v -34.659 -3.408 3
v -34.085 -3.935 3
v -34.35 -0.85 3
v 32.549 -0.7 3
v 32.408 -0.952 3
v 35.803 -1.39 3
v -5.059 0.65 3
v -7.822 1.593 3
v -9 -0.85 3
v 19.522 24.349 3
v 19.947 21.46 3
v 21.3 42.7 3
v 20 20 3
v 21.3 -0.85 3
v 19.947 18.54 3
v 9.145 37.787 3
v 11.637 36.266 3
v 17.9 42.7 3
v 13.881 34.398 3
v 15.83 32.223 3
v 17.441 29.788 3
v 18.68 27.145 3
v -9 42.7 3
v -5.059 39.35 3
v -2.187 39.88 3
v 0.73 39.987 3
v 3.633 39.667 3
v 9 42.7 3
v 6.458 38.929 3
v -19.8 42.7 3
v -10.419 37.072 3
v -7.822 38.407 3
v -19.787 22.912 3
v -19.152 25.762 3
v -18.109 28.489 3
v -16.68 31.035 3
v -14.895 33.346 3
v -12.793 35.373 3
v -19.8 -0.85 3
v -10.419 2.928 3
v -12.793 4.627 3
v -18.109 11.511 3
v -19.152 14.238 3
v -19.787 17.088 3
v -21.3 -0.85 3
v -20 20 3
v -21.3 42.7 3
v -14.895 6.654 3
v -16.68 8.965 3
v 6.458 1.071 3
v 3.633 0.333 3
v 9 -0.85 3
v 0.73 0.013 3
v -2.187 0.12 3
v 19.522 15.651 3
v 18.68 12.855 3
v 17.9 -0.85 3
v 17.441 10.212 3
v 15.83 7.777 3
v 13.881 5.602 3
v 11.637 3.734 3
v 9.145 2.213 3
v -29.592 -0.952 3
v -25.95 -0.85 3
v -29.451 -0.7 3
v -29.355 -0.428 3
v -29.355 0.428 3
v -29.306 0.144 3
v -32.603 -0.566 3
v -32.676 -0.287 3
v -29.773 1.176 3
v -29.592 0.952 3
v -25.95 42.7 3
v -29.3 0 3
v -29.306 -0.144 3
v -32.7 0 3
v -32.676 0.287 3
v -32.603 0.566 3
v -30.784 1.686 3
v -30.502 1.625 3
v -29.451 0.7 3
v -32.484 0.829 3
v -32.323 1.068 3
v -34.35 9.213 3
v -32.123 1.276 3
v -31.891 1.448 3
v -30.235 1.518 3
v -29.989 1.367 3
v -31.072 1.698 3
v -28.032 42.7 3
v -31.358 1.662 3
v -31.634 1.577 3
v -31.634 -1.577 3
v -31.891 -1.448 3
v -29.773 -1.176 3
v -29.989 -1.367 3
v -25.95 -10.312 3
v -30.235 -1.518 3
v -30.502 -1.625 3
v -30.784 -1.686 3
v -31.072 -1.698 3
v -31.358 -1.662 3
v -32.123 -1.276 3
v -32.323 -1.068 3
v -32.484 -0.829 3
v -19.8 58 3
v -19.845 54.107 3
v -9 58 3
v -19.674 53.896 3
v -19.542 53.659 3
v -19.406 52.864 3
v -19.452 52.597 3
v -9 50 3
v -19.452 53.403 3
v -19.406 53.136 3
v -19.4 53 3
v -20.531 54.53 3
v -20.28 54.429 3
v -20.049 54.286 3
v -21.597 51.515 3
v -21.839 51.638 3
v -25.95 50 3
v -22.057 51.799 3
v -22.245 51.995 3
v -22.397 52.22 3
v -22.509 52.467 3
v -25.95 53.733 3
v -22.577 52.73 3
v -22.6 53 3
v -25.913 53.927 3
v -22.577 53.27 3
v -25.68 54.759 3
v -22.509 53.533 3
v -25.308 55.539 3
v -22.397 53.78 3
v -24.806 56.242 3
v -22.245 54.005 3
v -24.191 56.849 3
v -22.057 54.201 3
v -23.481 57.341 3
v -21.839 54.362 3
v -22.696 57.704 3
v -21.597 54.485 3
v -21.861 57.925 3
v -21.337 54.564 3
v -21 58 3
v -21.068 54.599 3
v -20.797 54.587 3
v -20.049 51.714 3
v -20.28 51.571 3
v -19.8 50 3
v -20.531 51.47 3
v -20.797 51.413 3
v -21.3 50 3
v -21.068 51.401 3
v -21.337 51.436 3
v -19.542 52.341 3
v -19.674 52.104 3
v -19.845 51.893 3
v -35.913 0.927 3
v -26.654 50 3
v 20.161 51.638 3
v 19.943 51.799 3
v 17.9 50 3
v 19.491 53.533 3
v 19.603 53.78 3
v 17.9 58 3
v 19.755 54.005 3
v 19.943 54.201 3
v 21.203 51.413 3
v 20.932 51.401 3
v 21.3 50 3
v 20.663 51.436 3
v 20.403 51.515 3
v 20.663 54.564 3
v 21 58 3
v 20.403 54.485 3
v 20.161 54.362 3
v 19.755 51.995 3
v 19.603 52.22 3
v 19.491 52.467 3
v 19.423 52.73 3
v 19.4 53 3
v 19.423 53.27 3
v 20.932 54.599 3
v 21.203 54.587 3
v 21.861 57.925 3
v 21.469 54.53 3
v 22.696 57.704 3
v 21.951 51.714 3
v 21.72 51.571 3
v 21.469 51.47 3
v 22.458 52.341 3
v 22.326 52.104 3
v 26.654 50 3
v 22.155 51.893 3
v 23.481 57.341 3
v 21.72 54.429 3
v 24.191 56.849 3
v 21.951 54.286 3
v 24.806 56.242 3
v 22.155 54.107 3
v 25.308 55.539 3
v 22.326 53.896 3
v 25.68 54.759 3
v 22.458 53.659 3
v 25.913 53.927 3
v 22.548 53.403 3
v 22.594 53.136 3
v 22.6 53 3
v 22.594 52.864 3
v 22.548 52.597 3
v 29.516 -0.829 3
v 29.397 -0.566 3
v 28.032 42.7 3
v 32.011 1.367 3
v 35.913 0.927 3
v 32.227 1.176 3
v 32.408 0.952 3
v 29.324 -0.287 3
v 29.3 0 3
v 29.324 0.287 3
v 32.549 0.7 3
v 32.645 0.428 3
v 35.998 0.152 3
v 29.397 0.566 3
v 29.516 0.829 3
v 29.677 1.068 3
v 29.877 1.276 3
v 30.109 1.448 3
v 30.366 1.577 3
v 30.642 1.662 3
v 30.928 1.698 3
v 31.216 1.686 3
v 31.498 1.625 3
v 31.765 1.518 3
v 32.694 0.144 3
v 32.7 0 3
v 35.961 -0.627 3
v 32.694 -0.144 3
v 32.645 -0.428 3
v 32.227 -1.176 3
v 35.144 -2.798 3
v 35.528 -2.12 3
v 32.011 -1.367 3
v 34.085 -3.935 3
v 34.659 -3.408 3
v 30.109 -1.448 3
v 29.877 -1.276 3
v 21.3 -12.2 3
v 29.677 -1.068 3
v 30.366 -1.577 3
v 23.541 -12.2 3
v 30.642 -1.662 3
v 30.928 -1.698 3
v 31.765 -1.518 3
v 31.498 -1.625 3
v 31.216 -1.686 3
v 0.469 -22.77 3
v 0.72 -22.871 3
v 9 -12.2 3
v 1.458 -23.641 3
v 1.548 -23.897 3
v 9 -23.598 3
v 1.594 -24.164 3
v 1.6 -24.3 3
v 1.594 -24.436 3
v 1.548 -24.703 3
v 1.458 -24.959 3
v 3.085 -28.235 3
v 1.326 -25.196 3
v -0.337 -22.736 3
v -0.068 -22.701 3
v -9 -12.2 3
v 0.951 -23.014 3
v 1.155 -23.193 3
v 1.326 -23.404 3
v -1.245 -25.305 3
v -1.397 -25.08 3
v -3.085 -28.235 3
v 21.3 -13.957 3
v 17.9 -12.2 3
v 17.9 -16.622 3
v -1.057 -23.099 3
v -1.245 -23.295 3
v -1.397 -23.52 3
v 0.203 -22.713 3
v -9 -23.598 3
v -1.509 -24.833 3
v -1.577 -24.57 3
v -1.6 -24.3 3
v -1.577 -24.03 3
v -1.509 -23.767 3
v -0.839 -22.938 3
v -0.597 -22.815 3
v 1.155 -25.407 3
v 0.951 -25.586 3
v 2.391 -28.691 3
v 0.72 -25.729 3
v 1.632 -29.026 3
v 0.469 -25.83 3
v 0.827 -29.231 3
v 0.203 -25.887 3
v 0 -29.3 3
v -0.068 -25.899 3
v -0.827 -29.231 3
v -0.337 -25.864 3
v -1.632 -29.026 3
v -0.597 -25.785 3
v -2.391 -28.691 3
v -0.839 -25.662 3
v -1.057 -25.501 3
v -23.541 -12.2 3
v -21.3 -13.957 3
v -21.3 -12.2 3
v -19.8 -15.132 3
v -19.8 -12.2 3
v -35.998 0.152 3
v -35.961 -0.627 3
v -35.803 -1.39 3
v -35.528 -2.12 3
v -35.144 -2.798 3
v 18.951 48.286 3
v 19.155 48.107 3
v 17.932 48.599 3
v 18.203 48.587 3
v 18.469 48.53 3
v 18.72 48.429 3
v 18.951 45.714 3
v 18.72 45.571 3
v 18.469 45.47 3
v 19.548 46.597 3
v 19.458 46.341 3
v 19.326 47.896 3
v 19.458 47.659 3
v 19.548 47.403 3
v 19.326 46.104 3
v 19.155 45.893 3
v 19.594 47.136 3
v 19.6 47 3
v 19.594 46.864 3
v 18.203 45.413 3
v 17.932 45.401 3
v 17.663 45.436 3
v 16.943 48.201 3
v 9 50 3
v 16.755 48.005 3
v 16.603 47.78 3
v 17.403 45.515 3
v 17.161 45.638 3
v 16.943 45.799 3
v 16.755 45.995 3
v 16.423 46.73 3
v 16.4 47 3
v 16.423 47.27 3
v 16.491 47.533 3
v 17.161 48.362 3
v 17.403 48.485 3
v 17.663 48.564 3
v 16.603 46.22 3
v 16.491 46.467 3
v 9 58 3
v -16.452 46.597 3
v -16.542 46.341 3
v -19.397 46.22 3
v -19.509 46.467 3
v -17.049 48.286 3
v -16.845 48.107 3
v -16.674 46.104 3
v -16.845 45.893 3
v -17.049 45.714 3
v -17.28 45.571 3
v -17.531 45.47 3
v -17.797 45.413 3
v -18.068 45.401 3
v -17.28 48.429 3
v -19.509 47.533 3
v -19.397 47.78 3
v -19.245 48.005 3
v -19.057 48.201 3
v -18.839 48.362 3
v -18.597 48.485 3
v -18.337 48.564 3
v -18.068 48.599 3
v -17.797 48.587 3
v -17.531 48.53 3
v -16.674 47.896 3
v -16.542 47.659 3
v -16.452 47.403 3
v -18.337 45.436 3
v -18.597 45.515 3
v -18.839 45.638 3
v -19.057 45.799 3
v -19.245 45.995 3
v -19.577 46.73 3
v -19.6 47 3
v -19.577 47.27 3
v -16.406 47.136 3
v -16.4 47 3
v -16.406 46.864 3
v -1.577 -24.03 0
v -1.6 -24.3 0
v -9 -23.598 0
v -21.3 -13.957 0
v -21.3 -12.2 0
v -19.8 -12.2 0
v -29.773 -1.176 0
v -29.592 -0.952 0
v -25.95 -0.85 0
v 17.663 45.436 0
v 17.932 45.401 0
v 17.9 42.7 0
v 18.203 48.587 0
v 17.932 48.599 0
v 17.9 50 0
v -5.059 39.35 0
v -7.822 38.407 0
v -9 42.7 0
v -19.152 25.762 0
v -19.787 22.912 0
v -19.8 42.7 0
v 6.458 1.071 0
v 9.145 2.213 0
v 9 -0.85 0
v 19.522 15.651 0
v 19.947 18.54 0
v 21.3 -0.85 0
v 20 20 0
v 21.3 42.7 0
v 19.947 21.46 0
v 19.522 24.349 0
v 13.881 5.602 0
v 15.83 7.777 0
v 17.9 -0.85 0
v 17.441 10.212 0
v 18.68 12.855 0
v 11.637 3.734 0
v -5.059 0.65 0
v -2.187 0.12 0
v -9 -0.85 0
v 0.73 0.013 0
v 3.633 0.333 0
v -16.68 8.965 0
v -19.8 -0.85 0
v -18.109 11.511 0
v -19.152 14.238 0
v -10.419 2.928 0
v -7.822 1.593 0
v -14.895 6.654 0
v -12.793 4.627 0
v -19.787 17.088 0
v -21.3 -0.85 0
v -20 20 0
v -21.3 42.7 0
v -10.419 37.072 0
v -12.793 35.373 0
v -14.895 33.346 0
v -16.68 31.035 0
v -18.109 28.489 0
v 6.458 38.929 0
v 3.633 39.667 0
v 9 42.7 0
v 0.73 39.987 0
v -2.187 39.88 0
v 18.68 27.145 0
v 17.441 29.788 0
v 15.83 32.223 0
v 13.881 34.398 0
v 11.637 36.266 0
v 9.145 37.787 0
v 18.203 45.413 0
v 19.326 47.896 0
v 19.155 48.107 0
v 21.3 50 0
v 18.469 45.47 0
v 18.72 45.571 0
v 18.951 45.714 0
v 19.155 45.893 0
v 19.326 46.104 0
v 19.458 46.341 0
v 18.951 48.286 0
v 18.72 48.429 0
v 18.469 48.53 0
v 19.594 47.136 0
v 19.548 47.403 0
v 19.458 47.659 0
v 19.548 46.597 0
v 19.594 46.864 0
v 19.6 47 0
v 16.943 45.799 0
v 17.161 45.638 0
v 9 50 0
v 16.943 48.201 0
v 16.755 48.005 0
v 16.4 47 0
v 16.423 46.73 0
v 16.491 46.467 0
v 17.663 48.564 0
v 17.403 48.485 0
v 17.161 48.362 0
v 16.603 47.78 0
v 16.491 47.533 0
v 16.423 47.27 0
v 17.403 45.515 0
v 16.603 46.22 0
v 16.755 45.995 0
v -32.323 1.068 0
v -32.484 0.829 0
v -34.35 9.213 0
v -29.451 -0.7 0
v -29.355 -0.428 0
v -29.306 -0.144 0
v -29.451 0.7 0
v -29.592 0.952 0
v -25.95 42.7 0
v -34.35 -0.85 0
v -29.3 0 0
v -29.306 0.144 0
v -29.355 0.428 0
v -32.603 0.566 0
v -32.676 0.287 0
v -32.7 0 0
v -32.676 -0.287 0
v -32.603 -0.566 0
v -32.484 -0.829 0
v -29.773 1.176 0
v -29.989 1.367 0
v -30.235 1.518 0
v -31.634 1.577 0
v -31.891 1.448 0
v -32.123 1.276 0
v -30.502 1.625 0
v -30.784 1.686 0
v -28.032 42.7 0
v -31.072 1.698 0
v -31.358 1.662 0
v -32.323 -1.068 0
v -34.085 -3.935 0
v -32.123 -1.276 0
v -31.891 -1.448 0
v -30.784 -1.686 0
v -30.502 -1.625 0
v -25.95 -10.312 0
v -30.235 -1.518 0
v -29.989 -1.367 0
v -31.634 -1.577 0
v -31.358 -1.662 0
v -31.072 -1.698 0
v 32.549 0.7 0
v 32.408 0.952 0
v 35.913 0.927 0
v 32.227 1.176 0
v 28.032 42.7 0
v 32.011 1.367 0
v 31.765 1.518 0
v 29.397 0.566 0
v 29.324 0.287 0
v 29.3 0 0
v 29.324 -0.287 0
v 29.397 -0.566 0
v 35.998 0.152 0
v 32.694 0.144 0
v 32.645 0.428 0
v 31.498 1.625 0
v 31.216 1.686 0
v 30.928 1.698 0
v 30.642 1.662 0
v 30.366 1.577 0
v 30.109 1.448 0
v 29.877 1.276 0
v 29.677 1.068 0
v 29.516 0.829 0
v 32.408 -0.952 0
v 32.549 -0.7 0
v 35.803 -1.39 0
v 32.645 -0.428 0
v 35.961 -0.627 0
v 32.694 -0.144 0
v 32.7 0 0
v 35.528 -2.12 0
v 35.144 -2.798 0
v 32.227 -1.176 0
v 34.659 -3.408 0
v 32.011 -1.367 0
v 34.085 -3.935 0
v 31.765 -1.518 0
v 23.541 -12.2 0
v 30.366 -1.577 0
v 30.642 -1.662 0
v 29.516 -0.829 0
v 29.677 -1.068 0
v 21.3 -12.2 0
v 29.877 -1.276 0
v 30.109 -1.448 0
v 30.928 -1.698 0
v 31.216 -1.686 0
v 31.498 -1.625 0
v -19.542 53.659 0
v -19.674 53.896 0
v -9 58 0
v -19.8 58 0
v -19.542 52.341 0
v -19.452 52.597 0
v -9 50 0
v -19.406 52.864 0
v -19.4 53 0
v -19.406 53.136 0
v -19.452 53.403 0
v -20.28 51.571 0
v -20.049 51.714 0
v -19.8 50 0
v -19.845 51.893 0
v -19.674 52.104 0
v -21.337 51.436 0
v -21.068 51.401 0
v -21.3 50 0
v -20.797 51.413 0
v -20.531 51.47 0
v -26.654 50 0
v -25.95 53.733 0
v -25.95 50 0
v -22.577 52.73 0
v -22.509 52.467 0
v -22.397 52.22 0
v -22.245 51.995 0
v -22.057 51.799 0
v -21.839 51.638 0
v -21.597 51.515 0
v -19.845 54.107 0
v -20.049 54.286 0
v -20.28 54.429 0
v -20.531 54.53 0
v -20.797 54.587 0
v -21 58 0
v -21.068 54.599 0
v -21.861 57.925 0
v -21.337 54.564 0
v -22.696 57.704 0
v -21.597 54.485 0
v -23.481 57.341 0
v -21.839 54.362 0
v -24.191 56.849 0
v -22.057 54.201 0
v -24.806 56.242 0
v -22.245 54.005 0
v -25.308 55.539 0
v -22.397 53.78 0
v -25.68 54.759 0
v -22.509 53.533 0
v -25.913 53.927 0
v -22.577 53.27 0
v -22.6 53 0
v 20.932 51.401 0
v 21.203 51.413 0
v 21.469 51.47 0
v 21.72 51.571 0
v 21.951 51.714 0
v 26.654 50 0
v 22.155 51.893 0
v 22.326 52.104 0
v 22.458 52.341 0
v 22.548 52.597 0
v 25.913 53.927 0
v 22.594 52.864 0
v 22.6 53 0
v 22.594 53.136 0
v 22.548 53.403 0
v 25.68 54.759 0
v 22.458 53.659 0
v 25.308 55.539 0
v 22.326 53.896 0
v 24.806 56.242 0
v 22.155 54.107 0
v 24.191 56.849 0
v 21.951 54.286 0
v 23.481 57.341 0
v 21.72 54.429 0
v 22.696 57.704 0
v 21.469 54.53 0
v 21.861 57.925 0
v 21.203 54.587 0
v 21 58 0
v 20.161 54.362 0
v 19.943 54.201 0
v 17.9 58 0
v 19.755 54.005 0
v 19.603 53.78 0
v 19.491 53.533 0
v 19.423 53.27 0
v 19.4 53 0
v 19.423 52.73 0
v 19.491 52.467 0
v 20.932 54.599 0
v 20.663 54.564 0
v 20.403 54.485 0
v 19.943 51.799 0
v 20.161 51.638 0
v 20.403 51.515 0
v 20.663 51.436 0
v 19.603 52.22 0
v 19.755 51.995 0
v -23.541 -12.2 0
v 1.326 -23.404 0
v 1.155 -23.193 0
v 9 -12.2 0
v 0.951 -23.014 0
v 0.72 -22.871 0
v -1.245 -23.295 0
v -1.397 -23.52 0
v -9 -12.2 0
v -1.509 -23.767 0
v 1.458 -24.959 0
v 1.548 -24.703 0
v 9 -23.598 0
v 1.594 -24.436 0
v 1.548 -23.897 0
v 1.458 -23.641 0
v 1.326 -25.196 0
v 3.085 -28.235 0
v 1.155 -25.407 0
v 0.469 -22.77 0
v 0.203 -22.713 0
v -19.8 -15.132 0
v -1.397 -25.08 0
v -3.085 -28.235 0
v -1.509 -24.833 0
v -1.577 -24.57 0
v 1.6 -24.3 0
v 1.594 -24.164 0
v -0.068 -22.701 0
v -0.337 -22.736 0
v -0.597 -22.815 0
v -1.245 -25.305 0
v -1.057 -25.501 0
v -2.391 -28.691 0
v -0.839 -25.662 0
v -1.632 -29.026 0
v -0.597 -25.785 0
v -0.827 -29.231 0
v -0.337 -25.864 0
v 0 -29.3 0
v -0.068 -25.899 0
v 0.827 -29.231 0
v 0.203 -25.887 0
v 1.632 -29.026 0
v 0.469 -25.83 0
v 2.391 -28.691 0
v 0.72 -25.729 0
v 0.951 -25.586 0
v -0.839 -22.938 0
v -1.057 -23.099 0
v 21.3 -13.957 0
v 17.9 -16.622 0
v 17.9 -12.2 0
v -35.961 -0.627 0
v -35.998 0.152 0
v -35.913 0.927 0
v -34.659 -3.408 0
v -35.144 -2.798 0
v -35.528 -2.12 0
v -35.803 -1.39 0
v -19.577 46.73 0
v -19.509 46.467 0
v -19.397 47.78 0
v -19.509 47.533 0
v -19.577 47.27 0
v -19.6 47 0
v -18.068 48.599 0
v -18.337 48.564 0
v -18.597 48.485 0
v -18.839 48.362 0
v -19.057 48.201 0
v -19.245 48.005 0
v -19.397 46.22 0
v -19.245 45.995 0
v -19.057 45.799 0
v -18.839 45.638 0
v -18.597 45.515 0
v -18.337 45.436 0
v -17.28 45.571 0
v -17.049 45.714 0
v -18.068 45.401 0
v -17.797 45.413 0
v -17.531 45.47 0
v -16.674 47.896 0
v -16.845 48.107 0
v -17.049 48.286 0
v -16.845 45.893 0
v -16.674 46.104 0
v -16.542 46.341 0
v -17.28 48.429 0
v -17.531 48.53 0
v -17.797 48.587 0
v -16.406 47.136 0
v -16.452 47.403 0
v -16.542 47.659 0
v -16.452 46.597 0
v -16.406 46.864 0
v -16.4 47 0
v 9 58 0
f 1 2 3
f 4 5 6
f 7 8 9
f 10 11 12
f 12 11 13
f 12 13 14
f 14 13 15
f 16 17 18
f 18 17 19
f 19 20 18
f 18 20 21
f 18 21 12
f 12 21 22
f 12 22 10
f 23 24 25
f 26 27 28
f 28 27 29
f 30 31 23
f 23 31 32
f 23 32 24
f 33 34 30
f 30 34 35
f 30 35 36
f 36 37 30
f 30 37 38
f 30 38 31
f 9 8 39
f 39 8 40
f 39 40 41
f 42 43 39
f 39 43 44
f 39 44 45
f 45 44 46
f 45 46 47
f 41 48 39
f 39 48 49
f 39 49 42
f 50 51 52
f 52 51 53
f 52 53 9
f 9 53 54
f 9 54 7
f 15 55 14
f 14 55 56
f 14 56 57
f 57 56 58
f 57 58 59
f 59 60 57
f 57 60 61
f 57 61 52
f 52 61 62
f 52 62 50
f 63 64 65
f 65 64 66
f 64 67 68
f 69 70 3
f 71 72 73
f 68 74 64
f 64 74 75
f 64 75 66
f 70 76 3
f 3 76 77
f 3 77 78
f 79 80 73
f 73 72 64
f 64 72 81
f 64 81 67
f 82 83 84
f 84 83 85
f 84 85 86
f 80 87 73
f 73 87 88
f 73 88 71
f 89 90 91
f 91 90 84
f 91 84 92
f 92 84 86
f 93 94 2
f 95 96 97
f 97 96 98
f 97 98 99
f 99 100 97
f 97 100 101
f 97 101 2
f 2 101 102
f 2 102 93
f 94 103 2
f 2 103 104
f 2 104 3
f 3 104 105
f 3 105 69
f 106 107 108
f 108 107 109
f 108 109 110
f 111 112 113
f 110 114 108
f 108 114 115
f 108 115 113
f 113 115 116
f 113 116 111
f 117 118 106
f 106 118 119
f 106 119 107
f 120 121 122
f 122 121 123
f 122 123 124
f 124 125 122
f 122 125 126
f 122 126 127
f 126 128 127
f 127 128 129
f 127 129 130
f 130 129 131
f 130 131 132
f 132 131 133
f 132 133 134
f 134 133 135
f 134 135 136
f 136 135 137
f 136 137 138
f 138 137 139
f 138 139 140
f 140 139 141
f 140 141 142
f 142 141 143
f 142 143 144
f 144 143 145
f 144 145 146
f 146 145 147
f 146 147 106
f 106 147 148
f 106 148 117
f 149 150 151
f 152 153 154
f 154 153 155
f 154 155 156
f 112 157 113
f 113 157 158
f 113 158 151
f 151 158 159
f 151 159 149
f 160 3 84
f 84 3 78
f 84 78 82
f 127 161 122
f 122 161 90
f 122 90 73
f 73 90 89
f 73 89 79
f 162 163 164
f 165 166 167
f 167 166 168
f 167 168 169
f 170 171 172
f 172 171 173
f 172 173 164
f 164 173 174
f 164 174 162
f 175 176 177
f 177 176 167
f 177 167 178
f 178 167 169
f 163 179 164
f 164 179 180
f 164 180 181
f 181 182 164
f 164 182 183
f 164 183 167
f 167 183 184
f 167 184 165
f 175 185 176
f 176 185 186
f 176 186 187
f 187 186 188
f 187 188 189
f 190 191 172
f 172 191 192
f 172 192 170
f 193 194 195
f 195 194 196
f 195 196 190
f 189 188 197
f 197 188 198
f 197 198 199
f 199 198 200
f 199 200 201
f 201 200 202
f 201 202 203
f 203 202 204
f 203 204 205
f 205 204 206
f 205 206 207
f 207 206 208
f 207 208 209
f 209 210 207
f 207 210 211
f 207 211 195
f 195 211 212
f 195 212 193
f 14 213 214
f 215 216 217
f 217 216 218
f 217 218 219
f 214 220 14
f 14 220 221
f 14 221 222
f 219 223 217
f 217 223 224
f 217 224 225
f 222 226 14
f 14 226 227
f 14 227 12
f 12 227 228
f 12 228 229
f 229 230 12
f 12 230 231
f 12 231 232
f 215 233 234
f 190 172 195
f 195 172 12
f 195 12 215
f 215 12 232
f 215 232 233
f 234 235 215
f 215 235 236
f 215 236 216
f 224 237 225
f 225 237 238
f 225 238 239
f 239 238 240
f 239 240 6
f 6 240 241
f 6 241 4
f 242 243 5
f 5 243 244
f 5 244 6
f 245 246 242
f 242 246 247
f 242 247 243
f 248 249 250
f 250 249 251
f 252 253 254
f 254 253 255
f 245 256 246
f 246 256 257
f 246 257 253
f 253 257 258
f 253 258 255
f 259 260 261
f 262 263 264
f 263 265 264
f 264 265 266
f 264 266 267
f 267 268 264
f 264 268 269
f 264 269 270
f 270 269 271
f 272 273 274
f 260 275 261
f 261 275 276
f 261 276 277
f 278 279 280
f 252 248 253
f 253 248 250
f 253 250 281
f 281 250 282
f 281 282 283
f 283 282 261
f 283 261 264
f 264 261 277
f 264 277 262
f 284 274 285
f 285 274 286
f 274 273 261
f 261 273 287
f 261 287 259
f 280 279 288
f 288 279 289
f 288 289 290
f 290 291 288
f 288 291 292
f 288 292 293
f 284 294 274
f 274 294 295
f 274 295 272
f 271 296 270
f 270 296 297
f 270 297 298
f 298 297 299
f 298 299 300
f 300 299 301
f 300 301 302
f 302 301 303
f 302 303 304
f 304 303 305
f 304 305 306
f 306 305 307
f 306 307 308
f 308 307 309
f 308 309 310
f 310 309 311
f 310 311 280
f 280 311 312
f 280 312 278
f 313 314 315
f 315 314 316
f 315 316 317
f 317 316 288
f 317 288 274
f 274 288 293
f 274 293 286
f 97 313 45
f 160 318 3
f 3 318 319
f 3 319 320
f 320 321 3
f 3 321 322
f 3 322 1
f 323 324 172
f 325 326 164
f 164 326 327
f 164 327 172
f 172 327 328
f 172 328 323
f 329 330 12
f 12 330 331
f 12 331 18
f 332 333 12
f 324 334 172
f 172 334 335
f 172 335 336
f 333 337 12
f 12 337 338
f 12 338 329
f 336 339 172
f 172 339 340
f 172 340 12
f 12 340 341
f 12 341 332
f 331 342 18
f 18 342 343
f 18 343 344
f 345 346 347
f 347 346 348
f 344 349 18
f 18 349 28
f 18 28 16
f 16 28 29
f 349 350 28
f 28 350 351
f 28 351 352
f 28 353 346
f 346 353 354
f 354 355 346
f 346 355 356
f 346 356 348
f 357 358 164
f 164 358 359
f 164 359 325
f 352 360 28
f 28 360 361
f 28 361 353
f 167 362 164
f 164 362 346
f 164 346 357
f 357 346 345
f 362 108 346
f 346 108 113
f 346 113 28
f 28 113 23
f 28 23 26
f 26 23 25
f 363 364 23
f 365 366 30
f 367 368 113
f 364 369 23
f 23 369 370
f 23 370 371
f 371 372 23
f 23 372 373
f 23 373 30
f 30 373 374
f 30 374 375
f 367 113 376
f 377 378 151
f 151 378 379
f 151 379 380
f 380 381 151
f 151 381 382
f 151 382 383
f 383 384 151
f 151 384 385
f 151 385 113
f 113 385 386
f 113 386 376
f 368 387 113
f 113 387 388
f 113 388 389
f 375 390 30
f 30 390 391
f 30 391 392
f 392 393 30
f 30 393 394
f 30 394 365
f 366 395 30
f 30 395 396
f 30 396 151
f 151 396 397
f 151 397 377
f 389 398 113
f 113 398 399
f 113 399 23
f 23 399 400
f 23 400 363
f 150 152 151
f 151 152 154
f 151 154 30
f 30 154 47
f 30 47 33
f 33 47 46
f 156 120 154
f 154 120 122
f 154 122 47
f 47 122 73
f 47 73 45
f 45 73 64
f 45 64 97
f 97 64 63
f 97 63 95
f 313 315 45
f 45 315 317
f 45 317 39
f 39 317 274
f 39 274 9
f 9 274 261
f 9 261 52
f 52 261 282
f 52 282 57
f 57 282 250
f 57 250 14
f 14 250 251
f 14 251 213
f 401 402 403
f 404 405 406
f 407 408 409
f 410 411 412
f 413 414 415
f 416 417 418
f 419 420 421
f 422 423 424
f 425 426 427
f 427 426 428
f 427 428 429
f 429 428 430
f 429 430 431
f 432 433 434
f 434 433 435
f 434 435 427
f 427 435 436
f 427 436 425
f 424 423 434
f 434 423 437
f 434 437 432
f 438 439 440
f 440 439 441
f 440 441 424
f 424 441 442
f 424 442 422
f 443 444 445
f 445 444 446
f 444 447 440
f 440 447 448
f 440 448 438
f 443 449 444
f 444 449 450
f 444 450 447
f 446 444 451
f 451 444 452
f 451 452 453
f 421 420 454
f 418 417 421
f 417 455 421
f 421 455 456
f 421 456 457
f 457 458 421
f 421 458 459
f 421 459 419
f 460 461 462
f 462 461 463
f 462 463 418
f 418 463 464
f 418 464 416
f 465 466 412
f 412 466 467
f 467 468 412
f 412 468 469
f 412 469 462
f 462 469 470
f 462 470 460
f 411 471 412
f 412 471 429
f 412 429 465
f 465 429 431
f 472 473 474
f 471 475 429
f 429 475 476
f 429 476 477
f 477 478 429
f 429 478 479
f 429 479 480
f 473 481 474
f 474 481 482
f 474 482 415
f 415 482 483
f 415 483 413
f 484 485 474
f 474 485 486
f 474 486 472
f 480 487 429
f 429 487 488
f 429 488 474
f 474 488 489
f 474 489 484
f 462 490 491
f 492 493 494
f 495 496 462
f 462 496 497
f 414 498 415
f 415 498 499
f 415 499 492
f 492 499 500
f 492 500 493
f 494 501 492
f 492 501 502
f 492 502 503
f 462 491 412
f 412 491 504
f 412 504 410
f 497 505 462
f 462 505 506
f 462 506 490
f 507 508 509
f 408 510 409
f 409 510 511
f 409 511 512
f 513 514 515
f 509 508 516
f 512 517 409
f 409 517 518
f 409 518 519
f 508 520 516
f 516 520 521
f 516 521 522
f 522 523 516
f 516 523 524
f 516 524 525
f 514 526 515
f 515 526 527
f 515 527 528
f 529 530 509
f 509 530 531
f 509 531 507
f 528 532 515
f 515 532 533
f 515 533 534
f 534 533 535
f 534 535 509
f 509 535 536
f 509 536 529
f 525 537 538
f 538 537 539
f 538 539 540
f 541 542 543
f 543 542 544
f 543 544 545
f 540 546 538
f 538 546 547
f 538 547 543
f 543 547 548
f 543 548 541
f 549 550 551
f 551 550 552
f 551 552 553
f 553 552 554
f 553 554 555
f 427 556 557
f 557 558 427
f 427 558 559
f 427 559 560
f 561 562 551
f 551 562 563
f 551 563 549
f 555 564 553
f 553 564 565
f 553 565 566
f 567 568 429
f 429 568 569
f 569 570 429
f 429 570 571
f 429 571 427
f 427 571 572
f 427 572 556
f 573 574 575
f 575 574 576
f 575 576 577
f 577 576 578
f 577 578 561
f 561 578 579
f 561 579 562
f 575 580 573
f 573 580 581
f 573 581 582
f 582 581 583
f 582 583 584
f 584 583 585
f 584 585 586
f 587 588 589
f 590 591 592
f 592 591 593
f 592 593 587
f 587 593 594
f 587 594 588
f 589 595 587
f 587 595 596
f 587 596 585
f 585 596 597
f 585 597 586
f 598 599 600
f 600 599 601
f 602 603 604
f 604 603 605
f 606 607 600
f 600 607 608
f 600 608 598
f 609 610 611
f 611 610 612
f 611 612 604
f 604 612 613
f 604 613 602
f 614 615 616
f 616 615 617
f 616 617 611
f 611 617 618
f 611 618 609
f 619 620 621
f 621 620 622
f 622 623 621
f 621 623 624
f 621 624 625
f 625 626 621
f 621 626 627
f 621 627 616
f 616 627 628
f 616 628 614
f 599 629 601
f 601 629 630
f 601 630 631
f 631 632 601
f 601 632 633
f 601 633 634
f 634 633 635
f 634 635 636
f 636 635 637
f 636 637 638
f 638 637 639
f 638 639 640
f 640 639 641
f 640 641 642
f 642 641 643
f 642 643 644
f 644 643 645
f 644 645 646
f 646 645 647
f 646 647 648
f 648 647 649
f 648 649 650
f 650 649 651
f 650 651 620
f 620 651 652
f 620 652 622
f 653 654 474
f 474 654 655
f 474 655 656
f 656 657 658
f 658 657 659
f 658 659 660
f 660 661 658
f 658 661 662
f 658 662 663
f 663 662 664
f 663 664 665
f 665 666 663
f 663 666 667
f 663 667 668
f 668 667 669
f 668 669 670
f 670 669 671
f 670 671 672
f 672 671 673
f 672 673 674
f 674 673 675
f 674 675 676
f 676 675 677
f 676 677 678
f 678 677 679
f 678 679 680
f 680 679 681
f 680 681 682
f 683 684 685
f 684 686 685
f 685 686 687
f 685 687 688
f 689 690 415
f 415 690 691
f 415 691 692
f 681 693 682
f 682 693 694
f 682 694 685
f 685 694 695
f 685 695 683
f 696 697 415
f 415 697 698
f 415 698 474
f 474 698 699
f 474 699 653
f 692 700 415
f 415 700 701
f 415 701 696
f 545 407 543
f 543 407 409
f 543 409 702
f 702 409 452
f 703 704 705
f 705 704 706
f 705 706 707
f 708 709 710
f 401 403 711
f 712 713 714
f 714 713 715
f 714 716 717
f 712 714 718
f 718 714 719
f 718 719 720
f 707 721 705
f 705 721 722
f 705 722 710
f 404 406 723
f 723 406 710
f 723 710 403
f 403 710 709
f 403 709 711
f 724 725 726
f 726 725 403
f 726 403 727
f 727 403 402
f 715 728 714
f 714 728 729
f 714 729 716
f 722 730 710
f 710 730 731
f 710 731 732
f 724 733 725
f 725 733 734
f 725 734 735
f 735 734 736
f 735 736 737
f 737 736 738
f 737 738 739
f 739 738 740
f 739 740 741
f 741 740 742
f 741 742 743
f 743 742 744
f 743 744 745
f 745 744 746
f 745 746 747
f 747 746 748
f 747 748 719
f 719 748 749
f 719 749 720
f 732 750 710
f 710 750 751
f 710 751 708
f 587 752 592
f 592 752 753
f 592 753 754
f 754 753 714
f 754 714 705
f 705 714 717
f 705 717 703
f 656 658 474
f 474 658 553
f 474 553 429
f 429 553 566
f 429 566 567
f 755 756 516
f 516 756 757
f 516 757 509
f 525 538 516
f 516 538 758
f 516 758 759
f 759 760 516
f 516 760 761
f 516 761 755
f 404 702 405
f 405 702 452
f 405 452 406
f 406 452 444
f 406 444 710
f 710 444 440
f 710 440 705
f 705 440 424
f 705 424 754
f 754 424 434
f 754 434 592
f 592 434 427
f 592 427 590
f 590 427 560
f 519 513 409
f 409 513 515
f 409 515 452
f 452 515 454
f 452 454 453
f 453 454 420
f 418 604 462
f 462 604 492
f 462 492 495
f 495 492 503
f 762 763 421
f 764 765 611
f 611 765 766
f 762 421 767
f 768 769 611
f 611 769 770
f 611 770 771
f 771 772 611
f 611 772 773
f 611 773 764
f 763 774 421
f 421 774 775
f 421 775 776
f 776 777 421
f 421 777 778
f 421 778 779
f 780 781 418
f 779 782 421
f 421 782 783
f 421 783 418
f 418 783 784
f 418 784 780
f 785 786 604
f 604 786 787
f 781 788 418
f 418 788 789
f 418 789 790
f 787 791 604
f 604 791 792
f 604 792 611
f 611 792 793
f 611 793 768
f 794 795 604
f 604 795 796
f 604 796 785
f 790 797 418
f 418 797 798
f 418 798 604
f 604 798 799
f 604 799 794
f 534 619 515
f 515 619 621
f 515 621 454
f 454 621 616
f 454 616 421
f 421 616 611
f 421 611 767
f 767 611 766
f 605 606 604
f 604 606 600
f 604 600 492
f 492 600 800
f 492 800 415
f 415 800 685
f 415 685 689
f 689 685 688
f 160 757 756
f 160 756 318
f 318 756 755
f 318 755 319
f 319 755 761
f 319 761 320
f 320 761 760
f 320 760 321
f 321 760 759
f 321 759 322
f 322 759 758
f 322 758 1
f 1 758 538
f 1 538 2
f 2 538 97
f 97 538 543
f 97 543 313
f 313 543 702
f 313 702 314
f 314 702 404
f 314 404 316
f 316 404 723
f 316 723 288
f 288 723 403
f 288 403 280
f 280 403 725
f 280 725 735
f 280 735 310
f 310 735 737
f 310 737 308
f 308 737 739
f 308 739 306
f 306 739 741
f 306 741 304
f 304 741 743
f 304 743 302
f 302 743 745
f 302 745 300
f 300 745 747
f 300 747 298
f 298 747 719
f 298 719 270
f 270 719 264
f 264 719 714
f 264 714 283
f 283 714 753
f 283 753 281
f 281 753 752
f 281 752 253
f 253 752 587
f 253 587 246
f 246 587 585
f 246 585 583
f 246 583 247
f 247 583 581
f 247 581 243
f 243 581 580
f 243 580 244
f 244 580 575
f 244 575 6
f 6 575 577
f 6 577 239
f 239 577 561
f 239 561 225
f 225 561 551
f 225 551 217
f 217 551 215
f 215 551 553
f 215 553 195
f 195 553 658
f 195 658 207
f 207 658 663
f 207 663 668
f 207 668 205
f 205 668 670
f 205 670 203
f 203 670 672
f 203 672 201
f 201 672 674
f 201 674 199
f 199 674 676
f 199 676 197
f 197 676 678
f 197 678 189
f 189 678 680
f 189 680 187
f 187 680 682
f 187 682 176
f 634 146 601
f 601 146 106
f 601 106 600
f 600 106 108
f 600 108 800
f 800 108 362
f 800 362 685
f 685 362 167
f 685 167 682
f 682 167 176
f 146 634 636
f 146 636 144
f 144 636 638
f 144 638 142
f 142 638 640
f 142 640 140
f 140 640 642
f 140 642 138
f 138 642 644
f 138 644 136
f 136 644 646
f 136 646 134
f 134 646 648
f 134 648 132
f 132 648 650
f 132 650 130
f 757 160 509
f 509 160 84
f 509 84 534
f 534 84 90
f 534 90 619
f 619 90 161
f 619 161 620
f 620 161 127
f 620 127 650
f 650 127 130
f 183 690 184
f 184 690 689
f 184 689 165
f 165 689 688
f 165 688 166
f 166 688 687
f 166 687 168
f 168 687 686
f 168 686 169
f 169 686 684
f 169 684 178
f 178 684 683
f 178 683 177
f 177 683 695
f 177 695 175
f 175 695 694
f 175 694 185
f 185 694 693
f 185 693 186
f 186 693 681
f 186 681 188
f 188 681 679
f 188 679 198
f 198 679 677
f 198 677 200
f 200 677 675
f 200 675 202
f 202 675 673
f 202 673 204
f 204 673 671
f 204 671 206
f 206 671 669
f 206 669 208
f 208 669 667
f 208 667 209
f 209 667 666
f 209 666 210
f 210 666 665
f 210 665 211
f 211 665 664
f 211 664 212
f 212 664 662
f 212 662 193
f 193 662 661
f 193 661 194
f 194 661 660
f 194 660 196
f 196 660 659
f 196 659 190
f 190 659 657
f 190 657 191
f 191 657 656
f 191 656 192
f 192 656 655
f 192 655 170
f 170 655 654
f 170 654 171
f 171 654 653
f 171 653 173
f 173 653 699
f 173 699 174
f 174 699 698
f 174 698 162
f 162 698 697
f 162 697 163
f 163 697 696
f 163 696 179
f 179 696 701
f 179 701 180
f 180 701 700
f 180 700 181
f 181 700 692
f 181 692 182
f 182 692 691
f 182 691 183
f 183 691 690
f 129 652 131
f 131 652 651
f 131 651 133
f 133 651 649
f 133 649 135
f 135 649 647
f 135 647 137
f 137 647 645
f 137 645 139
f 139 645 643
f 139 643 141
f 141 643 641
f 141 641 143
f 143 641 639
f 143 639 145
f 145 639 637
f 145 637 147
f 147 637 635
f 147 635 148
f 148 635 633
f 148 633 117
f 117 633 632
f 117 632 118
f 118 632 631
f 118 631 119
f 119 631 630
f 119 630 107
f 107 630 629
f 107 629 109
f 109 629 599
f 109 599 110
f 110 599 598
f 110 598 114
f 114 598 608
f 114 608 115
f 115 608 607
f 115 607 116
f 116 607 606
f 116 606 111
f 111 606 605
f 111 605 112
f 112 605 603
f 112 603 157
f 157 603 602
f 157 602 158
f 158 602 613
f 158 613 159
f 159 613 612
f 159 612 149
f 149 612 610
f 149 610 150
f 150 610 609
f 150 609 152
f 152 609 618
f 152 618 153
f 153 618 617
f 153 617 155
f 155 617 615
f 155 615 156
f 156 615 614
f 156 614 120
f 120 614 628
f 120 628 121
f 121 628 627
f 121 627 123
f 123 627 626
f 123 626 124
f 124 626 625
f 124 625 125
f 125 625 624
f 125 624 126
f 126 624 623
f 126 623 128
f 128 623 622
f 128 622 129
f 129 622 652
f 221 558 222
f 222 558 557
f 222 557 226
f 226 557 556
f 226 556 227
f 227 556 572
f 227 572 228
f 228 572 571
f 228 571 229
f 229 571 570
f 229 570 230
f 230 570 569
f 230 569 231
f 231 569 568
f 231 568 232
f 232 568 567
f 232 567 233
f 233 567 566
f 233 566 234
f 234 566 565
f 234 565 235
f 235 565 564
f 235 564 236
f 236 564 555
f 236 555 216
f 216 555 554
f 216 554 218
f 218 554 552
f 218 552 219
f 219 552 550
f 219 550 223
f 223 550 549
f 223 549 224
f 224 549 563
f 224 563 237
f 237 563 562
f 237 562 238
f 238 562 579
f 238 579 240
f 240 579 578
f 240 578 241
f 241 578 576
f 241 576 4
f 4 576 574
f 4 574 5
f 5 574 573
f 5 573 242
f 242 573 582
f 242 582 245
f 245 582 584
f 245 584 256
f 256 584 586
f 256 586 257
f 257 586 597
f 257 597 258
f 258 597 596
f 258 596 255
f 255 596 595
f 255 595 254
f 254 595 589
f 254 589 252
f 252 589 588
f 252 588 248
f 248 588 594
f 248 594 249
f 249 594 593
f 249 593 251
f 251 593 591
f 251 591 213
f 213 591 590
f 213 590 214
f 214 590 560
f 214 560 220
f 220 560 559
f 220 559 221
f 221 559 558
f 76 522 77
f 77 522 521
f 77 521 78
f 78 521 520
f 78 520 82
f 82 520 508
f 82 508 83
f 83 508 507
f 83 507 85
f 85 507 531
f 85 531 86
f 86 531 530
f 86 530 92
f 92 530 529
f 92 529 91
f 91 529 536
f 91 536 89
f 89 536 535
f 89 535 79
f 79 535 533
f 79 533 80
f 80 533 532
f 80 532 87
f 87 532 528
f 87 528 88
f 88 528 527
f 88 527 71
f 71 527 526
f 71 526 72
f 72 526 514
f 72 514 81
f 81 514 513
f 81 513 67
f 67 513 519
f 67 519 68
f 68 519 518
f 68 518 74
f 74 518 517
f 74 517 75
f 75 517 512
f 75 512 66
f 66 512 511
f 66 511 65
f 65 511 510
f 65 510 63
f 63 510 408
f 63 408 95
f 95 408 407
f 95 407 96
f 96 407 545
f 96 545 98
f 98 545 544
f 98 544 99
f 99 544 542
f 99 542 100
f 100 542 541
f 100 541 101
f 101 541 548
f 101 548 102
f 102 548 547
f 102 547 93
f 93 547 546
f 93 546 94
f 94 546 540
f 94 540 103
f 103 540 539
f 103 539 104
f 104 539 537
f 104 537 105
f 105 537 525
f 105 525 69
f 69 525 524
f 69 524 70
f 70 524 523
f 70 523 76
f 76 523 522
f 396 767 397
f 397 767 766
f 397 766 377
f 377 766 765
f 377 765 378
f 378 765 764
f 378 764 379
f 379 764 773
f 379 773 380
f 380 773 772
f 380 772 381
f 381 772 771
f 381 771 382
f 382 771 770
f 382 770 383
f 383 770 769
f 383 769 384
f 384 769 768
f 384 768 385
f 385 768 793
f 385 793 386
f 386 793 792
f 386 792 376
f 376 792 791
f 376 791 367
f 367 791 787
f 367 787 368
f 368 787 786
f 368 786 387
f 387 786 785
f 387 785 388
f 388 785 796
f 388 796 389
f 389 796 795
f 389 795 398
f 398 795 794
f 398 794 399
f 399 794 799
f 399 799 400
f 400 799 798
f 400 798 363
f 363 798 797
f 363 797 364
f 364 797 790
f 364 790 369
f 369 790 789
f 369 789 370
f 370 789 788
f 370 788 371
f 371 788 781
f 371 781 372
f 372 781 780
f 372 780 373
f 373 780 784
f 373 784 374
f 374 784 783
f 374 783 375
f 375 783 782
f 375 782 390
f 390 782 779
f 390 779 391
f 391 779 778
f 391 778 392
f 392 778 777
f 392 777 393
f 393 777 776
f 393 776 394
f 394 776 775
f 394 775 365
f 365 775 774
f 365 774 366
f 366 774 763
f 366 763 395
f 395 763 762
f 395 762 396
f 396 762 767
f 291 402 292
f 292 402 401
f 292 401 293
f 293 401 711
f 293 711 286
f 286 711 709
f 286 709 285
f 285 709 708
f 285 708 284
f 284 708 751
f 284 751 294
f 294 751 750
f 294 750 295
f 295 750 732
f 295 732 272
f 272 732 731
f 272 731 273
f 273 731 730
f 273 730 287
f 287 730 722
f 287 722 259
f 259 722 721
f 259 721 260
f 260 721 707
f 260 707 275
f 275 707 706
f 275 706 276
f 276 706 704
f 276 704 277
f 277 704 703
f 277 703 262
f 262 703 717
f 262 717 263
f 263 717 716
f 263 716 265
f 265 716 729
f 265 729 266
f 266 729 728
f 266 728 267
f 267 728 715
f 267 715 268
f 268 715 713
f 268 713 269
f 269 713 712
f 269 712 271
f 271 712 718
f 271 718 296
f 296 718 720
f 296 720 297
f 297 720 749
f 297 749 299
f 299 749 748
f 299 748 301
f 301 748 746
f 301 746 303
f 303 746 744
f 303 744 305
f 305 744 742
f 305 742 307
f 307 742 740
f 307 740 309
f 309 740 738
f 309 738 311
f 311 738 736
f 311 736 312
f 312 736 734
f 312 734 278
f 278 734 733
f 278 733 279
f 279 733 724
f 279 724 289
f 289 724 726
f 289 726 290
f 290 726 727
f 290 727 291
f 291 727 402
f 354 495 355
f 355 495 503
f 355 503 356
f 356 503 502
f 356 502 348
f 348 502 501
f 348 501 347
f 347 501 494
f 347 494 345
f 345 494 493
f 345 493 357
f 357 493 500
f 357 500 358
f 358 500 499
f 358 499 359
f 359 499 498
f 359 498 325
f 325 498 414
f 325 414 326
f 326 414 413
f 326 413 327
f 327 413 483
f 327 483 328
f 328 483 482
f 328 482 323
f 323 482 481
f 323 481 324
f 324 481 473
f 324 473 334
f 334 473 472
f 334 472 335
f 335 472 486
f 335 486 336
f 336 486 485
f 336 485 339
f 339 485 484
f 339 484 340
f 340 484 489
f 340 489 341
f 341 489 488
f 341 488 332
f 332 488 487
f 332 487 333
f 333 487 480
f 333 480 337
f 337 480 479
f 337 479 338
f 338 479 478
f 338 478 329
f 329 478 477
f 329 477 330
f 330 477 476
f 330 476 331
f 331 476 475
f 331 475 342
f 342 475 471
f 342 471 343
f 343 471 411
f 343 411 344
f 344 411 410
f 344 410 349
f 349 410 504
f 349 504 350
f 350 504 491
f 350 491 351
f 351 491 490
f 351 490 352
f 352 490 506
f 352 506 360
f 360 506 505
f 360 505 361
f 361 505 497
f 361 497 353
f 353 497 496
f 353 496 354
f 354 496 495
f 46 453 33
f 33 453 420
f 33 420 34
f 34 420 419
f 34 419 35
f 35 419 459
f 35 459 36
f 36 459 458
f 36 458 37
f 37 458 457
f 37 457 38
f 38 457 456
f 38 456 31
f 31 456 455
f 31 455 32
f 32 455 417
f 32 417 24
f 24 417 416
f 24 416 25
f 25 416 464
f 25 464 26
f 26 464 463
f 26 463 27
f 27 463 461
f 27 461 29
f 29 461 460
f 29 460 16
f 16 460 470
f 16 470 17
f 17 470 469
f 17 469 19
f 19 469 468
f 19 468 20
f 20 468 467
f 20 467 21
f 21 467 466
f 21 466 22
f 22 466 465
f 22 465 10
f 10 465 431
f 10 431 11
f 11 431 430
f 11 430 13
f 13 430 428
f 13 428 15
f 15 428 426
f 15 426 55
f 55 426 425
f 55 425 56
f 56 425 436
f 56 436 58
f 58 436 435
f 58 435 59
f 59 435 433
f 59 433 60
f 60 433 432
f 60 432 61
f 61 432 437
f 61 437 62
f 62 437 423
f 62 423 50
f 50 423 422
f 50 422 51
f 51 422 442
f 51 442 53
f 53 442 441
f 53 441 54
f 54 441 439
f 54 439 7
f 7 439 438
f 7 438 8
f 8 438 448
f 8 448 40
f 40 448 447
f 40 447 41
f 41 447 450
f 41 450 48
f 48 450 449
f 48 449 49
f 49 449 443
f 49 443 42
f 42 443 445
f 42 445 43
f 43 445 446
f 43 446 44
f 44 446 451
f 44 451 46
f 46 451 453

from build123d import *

# Parameters (mm, degrees)
SKETCH_1_R      = 1.6
SKETCH_1_R_2    = 1.7
SKETCH_1_R_3    = 20
EXTRUDE_1_DEPTH = 3


with BuildPart() as part:
    # 草图1 → 凸台-拉伸1 (new body)
    with BuildSketch(Plane.XY):
        with BuildLine():
            Line((21, 58), (-21, 58))
            ThreePointArc((-21, 58), (-24.190987584, 56.849363355), (-25.913308269, 53.927039296))
            Line((-25.913308269, 53.927039296), (-35.913308269, 0.927039296))
            ThreePointArc((-35.913308269, 0.927039296), (-35.679941102, -1.760156608), (-34.084620834, -3.935112998))
            Line((-34.084620834, -3.935112998), (-3.084620834, -28.235112998))
            ThreePointArc((-3.084620834, -28.235112998), (0, -29.3), (3.084620834, -28.235112998))
            Line((3.084620834, -28.235112998), (34.084620834, -3.935112998))
            ThreePointArc((34.084620834, -3.935112998), (35.679941102, -1.760156608), (35.913308269, 0.927039296))
            Line((35.913308269, 0.927039296), (25.913308269, 53.927039296))
            ThreePointArc((25.913308269, 53.927039296), (24.190987584, 56.849363355), (21, 58))
        make_face()
        with Locations((21, 53)):
            Circle(SKETCH_1_R, mode=Mode.SUBTRACT)
        with Locations((-21, 53)):
            Circle(SKETCH_1_R, mode=Mode.SUBTRACT)
        with Locations((31, 0)):
            Circle(SKETCH_1_R_2, mode=Mode.SUBTRACT)
        with Locations((-31, 0)):
            Circle(SKETCH_1_R_2, mode=Mode.SUBTRACT)
        with Locations((18, 47)):
            Circle(SKETCH_1_R, mode=Mode.SUBTRACT)
        with Locations((-18, 47)):
            Circle(SKETCH_1_R, mode=Mode.SUBTRACT)
        with Locations((0, -24.3)):
            Circle(SKETCH_1_R, mode=Mode.SUBTRACT)
        with Locations((0, 20)):
            Circle(SKETCH_1_R_3, mode=Mode.SUBTRACT)
    extrude(amount=EXTRUDE_1_DEPTH)


solid = part.part
